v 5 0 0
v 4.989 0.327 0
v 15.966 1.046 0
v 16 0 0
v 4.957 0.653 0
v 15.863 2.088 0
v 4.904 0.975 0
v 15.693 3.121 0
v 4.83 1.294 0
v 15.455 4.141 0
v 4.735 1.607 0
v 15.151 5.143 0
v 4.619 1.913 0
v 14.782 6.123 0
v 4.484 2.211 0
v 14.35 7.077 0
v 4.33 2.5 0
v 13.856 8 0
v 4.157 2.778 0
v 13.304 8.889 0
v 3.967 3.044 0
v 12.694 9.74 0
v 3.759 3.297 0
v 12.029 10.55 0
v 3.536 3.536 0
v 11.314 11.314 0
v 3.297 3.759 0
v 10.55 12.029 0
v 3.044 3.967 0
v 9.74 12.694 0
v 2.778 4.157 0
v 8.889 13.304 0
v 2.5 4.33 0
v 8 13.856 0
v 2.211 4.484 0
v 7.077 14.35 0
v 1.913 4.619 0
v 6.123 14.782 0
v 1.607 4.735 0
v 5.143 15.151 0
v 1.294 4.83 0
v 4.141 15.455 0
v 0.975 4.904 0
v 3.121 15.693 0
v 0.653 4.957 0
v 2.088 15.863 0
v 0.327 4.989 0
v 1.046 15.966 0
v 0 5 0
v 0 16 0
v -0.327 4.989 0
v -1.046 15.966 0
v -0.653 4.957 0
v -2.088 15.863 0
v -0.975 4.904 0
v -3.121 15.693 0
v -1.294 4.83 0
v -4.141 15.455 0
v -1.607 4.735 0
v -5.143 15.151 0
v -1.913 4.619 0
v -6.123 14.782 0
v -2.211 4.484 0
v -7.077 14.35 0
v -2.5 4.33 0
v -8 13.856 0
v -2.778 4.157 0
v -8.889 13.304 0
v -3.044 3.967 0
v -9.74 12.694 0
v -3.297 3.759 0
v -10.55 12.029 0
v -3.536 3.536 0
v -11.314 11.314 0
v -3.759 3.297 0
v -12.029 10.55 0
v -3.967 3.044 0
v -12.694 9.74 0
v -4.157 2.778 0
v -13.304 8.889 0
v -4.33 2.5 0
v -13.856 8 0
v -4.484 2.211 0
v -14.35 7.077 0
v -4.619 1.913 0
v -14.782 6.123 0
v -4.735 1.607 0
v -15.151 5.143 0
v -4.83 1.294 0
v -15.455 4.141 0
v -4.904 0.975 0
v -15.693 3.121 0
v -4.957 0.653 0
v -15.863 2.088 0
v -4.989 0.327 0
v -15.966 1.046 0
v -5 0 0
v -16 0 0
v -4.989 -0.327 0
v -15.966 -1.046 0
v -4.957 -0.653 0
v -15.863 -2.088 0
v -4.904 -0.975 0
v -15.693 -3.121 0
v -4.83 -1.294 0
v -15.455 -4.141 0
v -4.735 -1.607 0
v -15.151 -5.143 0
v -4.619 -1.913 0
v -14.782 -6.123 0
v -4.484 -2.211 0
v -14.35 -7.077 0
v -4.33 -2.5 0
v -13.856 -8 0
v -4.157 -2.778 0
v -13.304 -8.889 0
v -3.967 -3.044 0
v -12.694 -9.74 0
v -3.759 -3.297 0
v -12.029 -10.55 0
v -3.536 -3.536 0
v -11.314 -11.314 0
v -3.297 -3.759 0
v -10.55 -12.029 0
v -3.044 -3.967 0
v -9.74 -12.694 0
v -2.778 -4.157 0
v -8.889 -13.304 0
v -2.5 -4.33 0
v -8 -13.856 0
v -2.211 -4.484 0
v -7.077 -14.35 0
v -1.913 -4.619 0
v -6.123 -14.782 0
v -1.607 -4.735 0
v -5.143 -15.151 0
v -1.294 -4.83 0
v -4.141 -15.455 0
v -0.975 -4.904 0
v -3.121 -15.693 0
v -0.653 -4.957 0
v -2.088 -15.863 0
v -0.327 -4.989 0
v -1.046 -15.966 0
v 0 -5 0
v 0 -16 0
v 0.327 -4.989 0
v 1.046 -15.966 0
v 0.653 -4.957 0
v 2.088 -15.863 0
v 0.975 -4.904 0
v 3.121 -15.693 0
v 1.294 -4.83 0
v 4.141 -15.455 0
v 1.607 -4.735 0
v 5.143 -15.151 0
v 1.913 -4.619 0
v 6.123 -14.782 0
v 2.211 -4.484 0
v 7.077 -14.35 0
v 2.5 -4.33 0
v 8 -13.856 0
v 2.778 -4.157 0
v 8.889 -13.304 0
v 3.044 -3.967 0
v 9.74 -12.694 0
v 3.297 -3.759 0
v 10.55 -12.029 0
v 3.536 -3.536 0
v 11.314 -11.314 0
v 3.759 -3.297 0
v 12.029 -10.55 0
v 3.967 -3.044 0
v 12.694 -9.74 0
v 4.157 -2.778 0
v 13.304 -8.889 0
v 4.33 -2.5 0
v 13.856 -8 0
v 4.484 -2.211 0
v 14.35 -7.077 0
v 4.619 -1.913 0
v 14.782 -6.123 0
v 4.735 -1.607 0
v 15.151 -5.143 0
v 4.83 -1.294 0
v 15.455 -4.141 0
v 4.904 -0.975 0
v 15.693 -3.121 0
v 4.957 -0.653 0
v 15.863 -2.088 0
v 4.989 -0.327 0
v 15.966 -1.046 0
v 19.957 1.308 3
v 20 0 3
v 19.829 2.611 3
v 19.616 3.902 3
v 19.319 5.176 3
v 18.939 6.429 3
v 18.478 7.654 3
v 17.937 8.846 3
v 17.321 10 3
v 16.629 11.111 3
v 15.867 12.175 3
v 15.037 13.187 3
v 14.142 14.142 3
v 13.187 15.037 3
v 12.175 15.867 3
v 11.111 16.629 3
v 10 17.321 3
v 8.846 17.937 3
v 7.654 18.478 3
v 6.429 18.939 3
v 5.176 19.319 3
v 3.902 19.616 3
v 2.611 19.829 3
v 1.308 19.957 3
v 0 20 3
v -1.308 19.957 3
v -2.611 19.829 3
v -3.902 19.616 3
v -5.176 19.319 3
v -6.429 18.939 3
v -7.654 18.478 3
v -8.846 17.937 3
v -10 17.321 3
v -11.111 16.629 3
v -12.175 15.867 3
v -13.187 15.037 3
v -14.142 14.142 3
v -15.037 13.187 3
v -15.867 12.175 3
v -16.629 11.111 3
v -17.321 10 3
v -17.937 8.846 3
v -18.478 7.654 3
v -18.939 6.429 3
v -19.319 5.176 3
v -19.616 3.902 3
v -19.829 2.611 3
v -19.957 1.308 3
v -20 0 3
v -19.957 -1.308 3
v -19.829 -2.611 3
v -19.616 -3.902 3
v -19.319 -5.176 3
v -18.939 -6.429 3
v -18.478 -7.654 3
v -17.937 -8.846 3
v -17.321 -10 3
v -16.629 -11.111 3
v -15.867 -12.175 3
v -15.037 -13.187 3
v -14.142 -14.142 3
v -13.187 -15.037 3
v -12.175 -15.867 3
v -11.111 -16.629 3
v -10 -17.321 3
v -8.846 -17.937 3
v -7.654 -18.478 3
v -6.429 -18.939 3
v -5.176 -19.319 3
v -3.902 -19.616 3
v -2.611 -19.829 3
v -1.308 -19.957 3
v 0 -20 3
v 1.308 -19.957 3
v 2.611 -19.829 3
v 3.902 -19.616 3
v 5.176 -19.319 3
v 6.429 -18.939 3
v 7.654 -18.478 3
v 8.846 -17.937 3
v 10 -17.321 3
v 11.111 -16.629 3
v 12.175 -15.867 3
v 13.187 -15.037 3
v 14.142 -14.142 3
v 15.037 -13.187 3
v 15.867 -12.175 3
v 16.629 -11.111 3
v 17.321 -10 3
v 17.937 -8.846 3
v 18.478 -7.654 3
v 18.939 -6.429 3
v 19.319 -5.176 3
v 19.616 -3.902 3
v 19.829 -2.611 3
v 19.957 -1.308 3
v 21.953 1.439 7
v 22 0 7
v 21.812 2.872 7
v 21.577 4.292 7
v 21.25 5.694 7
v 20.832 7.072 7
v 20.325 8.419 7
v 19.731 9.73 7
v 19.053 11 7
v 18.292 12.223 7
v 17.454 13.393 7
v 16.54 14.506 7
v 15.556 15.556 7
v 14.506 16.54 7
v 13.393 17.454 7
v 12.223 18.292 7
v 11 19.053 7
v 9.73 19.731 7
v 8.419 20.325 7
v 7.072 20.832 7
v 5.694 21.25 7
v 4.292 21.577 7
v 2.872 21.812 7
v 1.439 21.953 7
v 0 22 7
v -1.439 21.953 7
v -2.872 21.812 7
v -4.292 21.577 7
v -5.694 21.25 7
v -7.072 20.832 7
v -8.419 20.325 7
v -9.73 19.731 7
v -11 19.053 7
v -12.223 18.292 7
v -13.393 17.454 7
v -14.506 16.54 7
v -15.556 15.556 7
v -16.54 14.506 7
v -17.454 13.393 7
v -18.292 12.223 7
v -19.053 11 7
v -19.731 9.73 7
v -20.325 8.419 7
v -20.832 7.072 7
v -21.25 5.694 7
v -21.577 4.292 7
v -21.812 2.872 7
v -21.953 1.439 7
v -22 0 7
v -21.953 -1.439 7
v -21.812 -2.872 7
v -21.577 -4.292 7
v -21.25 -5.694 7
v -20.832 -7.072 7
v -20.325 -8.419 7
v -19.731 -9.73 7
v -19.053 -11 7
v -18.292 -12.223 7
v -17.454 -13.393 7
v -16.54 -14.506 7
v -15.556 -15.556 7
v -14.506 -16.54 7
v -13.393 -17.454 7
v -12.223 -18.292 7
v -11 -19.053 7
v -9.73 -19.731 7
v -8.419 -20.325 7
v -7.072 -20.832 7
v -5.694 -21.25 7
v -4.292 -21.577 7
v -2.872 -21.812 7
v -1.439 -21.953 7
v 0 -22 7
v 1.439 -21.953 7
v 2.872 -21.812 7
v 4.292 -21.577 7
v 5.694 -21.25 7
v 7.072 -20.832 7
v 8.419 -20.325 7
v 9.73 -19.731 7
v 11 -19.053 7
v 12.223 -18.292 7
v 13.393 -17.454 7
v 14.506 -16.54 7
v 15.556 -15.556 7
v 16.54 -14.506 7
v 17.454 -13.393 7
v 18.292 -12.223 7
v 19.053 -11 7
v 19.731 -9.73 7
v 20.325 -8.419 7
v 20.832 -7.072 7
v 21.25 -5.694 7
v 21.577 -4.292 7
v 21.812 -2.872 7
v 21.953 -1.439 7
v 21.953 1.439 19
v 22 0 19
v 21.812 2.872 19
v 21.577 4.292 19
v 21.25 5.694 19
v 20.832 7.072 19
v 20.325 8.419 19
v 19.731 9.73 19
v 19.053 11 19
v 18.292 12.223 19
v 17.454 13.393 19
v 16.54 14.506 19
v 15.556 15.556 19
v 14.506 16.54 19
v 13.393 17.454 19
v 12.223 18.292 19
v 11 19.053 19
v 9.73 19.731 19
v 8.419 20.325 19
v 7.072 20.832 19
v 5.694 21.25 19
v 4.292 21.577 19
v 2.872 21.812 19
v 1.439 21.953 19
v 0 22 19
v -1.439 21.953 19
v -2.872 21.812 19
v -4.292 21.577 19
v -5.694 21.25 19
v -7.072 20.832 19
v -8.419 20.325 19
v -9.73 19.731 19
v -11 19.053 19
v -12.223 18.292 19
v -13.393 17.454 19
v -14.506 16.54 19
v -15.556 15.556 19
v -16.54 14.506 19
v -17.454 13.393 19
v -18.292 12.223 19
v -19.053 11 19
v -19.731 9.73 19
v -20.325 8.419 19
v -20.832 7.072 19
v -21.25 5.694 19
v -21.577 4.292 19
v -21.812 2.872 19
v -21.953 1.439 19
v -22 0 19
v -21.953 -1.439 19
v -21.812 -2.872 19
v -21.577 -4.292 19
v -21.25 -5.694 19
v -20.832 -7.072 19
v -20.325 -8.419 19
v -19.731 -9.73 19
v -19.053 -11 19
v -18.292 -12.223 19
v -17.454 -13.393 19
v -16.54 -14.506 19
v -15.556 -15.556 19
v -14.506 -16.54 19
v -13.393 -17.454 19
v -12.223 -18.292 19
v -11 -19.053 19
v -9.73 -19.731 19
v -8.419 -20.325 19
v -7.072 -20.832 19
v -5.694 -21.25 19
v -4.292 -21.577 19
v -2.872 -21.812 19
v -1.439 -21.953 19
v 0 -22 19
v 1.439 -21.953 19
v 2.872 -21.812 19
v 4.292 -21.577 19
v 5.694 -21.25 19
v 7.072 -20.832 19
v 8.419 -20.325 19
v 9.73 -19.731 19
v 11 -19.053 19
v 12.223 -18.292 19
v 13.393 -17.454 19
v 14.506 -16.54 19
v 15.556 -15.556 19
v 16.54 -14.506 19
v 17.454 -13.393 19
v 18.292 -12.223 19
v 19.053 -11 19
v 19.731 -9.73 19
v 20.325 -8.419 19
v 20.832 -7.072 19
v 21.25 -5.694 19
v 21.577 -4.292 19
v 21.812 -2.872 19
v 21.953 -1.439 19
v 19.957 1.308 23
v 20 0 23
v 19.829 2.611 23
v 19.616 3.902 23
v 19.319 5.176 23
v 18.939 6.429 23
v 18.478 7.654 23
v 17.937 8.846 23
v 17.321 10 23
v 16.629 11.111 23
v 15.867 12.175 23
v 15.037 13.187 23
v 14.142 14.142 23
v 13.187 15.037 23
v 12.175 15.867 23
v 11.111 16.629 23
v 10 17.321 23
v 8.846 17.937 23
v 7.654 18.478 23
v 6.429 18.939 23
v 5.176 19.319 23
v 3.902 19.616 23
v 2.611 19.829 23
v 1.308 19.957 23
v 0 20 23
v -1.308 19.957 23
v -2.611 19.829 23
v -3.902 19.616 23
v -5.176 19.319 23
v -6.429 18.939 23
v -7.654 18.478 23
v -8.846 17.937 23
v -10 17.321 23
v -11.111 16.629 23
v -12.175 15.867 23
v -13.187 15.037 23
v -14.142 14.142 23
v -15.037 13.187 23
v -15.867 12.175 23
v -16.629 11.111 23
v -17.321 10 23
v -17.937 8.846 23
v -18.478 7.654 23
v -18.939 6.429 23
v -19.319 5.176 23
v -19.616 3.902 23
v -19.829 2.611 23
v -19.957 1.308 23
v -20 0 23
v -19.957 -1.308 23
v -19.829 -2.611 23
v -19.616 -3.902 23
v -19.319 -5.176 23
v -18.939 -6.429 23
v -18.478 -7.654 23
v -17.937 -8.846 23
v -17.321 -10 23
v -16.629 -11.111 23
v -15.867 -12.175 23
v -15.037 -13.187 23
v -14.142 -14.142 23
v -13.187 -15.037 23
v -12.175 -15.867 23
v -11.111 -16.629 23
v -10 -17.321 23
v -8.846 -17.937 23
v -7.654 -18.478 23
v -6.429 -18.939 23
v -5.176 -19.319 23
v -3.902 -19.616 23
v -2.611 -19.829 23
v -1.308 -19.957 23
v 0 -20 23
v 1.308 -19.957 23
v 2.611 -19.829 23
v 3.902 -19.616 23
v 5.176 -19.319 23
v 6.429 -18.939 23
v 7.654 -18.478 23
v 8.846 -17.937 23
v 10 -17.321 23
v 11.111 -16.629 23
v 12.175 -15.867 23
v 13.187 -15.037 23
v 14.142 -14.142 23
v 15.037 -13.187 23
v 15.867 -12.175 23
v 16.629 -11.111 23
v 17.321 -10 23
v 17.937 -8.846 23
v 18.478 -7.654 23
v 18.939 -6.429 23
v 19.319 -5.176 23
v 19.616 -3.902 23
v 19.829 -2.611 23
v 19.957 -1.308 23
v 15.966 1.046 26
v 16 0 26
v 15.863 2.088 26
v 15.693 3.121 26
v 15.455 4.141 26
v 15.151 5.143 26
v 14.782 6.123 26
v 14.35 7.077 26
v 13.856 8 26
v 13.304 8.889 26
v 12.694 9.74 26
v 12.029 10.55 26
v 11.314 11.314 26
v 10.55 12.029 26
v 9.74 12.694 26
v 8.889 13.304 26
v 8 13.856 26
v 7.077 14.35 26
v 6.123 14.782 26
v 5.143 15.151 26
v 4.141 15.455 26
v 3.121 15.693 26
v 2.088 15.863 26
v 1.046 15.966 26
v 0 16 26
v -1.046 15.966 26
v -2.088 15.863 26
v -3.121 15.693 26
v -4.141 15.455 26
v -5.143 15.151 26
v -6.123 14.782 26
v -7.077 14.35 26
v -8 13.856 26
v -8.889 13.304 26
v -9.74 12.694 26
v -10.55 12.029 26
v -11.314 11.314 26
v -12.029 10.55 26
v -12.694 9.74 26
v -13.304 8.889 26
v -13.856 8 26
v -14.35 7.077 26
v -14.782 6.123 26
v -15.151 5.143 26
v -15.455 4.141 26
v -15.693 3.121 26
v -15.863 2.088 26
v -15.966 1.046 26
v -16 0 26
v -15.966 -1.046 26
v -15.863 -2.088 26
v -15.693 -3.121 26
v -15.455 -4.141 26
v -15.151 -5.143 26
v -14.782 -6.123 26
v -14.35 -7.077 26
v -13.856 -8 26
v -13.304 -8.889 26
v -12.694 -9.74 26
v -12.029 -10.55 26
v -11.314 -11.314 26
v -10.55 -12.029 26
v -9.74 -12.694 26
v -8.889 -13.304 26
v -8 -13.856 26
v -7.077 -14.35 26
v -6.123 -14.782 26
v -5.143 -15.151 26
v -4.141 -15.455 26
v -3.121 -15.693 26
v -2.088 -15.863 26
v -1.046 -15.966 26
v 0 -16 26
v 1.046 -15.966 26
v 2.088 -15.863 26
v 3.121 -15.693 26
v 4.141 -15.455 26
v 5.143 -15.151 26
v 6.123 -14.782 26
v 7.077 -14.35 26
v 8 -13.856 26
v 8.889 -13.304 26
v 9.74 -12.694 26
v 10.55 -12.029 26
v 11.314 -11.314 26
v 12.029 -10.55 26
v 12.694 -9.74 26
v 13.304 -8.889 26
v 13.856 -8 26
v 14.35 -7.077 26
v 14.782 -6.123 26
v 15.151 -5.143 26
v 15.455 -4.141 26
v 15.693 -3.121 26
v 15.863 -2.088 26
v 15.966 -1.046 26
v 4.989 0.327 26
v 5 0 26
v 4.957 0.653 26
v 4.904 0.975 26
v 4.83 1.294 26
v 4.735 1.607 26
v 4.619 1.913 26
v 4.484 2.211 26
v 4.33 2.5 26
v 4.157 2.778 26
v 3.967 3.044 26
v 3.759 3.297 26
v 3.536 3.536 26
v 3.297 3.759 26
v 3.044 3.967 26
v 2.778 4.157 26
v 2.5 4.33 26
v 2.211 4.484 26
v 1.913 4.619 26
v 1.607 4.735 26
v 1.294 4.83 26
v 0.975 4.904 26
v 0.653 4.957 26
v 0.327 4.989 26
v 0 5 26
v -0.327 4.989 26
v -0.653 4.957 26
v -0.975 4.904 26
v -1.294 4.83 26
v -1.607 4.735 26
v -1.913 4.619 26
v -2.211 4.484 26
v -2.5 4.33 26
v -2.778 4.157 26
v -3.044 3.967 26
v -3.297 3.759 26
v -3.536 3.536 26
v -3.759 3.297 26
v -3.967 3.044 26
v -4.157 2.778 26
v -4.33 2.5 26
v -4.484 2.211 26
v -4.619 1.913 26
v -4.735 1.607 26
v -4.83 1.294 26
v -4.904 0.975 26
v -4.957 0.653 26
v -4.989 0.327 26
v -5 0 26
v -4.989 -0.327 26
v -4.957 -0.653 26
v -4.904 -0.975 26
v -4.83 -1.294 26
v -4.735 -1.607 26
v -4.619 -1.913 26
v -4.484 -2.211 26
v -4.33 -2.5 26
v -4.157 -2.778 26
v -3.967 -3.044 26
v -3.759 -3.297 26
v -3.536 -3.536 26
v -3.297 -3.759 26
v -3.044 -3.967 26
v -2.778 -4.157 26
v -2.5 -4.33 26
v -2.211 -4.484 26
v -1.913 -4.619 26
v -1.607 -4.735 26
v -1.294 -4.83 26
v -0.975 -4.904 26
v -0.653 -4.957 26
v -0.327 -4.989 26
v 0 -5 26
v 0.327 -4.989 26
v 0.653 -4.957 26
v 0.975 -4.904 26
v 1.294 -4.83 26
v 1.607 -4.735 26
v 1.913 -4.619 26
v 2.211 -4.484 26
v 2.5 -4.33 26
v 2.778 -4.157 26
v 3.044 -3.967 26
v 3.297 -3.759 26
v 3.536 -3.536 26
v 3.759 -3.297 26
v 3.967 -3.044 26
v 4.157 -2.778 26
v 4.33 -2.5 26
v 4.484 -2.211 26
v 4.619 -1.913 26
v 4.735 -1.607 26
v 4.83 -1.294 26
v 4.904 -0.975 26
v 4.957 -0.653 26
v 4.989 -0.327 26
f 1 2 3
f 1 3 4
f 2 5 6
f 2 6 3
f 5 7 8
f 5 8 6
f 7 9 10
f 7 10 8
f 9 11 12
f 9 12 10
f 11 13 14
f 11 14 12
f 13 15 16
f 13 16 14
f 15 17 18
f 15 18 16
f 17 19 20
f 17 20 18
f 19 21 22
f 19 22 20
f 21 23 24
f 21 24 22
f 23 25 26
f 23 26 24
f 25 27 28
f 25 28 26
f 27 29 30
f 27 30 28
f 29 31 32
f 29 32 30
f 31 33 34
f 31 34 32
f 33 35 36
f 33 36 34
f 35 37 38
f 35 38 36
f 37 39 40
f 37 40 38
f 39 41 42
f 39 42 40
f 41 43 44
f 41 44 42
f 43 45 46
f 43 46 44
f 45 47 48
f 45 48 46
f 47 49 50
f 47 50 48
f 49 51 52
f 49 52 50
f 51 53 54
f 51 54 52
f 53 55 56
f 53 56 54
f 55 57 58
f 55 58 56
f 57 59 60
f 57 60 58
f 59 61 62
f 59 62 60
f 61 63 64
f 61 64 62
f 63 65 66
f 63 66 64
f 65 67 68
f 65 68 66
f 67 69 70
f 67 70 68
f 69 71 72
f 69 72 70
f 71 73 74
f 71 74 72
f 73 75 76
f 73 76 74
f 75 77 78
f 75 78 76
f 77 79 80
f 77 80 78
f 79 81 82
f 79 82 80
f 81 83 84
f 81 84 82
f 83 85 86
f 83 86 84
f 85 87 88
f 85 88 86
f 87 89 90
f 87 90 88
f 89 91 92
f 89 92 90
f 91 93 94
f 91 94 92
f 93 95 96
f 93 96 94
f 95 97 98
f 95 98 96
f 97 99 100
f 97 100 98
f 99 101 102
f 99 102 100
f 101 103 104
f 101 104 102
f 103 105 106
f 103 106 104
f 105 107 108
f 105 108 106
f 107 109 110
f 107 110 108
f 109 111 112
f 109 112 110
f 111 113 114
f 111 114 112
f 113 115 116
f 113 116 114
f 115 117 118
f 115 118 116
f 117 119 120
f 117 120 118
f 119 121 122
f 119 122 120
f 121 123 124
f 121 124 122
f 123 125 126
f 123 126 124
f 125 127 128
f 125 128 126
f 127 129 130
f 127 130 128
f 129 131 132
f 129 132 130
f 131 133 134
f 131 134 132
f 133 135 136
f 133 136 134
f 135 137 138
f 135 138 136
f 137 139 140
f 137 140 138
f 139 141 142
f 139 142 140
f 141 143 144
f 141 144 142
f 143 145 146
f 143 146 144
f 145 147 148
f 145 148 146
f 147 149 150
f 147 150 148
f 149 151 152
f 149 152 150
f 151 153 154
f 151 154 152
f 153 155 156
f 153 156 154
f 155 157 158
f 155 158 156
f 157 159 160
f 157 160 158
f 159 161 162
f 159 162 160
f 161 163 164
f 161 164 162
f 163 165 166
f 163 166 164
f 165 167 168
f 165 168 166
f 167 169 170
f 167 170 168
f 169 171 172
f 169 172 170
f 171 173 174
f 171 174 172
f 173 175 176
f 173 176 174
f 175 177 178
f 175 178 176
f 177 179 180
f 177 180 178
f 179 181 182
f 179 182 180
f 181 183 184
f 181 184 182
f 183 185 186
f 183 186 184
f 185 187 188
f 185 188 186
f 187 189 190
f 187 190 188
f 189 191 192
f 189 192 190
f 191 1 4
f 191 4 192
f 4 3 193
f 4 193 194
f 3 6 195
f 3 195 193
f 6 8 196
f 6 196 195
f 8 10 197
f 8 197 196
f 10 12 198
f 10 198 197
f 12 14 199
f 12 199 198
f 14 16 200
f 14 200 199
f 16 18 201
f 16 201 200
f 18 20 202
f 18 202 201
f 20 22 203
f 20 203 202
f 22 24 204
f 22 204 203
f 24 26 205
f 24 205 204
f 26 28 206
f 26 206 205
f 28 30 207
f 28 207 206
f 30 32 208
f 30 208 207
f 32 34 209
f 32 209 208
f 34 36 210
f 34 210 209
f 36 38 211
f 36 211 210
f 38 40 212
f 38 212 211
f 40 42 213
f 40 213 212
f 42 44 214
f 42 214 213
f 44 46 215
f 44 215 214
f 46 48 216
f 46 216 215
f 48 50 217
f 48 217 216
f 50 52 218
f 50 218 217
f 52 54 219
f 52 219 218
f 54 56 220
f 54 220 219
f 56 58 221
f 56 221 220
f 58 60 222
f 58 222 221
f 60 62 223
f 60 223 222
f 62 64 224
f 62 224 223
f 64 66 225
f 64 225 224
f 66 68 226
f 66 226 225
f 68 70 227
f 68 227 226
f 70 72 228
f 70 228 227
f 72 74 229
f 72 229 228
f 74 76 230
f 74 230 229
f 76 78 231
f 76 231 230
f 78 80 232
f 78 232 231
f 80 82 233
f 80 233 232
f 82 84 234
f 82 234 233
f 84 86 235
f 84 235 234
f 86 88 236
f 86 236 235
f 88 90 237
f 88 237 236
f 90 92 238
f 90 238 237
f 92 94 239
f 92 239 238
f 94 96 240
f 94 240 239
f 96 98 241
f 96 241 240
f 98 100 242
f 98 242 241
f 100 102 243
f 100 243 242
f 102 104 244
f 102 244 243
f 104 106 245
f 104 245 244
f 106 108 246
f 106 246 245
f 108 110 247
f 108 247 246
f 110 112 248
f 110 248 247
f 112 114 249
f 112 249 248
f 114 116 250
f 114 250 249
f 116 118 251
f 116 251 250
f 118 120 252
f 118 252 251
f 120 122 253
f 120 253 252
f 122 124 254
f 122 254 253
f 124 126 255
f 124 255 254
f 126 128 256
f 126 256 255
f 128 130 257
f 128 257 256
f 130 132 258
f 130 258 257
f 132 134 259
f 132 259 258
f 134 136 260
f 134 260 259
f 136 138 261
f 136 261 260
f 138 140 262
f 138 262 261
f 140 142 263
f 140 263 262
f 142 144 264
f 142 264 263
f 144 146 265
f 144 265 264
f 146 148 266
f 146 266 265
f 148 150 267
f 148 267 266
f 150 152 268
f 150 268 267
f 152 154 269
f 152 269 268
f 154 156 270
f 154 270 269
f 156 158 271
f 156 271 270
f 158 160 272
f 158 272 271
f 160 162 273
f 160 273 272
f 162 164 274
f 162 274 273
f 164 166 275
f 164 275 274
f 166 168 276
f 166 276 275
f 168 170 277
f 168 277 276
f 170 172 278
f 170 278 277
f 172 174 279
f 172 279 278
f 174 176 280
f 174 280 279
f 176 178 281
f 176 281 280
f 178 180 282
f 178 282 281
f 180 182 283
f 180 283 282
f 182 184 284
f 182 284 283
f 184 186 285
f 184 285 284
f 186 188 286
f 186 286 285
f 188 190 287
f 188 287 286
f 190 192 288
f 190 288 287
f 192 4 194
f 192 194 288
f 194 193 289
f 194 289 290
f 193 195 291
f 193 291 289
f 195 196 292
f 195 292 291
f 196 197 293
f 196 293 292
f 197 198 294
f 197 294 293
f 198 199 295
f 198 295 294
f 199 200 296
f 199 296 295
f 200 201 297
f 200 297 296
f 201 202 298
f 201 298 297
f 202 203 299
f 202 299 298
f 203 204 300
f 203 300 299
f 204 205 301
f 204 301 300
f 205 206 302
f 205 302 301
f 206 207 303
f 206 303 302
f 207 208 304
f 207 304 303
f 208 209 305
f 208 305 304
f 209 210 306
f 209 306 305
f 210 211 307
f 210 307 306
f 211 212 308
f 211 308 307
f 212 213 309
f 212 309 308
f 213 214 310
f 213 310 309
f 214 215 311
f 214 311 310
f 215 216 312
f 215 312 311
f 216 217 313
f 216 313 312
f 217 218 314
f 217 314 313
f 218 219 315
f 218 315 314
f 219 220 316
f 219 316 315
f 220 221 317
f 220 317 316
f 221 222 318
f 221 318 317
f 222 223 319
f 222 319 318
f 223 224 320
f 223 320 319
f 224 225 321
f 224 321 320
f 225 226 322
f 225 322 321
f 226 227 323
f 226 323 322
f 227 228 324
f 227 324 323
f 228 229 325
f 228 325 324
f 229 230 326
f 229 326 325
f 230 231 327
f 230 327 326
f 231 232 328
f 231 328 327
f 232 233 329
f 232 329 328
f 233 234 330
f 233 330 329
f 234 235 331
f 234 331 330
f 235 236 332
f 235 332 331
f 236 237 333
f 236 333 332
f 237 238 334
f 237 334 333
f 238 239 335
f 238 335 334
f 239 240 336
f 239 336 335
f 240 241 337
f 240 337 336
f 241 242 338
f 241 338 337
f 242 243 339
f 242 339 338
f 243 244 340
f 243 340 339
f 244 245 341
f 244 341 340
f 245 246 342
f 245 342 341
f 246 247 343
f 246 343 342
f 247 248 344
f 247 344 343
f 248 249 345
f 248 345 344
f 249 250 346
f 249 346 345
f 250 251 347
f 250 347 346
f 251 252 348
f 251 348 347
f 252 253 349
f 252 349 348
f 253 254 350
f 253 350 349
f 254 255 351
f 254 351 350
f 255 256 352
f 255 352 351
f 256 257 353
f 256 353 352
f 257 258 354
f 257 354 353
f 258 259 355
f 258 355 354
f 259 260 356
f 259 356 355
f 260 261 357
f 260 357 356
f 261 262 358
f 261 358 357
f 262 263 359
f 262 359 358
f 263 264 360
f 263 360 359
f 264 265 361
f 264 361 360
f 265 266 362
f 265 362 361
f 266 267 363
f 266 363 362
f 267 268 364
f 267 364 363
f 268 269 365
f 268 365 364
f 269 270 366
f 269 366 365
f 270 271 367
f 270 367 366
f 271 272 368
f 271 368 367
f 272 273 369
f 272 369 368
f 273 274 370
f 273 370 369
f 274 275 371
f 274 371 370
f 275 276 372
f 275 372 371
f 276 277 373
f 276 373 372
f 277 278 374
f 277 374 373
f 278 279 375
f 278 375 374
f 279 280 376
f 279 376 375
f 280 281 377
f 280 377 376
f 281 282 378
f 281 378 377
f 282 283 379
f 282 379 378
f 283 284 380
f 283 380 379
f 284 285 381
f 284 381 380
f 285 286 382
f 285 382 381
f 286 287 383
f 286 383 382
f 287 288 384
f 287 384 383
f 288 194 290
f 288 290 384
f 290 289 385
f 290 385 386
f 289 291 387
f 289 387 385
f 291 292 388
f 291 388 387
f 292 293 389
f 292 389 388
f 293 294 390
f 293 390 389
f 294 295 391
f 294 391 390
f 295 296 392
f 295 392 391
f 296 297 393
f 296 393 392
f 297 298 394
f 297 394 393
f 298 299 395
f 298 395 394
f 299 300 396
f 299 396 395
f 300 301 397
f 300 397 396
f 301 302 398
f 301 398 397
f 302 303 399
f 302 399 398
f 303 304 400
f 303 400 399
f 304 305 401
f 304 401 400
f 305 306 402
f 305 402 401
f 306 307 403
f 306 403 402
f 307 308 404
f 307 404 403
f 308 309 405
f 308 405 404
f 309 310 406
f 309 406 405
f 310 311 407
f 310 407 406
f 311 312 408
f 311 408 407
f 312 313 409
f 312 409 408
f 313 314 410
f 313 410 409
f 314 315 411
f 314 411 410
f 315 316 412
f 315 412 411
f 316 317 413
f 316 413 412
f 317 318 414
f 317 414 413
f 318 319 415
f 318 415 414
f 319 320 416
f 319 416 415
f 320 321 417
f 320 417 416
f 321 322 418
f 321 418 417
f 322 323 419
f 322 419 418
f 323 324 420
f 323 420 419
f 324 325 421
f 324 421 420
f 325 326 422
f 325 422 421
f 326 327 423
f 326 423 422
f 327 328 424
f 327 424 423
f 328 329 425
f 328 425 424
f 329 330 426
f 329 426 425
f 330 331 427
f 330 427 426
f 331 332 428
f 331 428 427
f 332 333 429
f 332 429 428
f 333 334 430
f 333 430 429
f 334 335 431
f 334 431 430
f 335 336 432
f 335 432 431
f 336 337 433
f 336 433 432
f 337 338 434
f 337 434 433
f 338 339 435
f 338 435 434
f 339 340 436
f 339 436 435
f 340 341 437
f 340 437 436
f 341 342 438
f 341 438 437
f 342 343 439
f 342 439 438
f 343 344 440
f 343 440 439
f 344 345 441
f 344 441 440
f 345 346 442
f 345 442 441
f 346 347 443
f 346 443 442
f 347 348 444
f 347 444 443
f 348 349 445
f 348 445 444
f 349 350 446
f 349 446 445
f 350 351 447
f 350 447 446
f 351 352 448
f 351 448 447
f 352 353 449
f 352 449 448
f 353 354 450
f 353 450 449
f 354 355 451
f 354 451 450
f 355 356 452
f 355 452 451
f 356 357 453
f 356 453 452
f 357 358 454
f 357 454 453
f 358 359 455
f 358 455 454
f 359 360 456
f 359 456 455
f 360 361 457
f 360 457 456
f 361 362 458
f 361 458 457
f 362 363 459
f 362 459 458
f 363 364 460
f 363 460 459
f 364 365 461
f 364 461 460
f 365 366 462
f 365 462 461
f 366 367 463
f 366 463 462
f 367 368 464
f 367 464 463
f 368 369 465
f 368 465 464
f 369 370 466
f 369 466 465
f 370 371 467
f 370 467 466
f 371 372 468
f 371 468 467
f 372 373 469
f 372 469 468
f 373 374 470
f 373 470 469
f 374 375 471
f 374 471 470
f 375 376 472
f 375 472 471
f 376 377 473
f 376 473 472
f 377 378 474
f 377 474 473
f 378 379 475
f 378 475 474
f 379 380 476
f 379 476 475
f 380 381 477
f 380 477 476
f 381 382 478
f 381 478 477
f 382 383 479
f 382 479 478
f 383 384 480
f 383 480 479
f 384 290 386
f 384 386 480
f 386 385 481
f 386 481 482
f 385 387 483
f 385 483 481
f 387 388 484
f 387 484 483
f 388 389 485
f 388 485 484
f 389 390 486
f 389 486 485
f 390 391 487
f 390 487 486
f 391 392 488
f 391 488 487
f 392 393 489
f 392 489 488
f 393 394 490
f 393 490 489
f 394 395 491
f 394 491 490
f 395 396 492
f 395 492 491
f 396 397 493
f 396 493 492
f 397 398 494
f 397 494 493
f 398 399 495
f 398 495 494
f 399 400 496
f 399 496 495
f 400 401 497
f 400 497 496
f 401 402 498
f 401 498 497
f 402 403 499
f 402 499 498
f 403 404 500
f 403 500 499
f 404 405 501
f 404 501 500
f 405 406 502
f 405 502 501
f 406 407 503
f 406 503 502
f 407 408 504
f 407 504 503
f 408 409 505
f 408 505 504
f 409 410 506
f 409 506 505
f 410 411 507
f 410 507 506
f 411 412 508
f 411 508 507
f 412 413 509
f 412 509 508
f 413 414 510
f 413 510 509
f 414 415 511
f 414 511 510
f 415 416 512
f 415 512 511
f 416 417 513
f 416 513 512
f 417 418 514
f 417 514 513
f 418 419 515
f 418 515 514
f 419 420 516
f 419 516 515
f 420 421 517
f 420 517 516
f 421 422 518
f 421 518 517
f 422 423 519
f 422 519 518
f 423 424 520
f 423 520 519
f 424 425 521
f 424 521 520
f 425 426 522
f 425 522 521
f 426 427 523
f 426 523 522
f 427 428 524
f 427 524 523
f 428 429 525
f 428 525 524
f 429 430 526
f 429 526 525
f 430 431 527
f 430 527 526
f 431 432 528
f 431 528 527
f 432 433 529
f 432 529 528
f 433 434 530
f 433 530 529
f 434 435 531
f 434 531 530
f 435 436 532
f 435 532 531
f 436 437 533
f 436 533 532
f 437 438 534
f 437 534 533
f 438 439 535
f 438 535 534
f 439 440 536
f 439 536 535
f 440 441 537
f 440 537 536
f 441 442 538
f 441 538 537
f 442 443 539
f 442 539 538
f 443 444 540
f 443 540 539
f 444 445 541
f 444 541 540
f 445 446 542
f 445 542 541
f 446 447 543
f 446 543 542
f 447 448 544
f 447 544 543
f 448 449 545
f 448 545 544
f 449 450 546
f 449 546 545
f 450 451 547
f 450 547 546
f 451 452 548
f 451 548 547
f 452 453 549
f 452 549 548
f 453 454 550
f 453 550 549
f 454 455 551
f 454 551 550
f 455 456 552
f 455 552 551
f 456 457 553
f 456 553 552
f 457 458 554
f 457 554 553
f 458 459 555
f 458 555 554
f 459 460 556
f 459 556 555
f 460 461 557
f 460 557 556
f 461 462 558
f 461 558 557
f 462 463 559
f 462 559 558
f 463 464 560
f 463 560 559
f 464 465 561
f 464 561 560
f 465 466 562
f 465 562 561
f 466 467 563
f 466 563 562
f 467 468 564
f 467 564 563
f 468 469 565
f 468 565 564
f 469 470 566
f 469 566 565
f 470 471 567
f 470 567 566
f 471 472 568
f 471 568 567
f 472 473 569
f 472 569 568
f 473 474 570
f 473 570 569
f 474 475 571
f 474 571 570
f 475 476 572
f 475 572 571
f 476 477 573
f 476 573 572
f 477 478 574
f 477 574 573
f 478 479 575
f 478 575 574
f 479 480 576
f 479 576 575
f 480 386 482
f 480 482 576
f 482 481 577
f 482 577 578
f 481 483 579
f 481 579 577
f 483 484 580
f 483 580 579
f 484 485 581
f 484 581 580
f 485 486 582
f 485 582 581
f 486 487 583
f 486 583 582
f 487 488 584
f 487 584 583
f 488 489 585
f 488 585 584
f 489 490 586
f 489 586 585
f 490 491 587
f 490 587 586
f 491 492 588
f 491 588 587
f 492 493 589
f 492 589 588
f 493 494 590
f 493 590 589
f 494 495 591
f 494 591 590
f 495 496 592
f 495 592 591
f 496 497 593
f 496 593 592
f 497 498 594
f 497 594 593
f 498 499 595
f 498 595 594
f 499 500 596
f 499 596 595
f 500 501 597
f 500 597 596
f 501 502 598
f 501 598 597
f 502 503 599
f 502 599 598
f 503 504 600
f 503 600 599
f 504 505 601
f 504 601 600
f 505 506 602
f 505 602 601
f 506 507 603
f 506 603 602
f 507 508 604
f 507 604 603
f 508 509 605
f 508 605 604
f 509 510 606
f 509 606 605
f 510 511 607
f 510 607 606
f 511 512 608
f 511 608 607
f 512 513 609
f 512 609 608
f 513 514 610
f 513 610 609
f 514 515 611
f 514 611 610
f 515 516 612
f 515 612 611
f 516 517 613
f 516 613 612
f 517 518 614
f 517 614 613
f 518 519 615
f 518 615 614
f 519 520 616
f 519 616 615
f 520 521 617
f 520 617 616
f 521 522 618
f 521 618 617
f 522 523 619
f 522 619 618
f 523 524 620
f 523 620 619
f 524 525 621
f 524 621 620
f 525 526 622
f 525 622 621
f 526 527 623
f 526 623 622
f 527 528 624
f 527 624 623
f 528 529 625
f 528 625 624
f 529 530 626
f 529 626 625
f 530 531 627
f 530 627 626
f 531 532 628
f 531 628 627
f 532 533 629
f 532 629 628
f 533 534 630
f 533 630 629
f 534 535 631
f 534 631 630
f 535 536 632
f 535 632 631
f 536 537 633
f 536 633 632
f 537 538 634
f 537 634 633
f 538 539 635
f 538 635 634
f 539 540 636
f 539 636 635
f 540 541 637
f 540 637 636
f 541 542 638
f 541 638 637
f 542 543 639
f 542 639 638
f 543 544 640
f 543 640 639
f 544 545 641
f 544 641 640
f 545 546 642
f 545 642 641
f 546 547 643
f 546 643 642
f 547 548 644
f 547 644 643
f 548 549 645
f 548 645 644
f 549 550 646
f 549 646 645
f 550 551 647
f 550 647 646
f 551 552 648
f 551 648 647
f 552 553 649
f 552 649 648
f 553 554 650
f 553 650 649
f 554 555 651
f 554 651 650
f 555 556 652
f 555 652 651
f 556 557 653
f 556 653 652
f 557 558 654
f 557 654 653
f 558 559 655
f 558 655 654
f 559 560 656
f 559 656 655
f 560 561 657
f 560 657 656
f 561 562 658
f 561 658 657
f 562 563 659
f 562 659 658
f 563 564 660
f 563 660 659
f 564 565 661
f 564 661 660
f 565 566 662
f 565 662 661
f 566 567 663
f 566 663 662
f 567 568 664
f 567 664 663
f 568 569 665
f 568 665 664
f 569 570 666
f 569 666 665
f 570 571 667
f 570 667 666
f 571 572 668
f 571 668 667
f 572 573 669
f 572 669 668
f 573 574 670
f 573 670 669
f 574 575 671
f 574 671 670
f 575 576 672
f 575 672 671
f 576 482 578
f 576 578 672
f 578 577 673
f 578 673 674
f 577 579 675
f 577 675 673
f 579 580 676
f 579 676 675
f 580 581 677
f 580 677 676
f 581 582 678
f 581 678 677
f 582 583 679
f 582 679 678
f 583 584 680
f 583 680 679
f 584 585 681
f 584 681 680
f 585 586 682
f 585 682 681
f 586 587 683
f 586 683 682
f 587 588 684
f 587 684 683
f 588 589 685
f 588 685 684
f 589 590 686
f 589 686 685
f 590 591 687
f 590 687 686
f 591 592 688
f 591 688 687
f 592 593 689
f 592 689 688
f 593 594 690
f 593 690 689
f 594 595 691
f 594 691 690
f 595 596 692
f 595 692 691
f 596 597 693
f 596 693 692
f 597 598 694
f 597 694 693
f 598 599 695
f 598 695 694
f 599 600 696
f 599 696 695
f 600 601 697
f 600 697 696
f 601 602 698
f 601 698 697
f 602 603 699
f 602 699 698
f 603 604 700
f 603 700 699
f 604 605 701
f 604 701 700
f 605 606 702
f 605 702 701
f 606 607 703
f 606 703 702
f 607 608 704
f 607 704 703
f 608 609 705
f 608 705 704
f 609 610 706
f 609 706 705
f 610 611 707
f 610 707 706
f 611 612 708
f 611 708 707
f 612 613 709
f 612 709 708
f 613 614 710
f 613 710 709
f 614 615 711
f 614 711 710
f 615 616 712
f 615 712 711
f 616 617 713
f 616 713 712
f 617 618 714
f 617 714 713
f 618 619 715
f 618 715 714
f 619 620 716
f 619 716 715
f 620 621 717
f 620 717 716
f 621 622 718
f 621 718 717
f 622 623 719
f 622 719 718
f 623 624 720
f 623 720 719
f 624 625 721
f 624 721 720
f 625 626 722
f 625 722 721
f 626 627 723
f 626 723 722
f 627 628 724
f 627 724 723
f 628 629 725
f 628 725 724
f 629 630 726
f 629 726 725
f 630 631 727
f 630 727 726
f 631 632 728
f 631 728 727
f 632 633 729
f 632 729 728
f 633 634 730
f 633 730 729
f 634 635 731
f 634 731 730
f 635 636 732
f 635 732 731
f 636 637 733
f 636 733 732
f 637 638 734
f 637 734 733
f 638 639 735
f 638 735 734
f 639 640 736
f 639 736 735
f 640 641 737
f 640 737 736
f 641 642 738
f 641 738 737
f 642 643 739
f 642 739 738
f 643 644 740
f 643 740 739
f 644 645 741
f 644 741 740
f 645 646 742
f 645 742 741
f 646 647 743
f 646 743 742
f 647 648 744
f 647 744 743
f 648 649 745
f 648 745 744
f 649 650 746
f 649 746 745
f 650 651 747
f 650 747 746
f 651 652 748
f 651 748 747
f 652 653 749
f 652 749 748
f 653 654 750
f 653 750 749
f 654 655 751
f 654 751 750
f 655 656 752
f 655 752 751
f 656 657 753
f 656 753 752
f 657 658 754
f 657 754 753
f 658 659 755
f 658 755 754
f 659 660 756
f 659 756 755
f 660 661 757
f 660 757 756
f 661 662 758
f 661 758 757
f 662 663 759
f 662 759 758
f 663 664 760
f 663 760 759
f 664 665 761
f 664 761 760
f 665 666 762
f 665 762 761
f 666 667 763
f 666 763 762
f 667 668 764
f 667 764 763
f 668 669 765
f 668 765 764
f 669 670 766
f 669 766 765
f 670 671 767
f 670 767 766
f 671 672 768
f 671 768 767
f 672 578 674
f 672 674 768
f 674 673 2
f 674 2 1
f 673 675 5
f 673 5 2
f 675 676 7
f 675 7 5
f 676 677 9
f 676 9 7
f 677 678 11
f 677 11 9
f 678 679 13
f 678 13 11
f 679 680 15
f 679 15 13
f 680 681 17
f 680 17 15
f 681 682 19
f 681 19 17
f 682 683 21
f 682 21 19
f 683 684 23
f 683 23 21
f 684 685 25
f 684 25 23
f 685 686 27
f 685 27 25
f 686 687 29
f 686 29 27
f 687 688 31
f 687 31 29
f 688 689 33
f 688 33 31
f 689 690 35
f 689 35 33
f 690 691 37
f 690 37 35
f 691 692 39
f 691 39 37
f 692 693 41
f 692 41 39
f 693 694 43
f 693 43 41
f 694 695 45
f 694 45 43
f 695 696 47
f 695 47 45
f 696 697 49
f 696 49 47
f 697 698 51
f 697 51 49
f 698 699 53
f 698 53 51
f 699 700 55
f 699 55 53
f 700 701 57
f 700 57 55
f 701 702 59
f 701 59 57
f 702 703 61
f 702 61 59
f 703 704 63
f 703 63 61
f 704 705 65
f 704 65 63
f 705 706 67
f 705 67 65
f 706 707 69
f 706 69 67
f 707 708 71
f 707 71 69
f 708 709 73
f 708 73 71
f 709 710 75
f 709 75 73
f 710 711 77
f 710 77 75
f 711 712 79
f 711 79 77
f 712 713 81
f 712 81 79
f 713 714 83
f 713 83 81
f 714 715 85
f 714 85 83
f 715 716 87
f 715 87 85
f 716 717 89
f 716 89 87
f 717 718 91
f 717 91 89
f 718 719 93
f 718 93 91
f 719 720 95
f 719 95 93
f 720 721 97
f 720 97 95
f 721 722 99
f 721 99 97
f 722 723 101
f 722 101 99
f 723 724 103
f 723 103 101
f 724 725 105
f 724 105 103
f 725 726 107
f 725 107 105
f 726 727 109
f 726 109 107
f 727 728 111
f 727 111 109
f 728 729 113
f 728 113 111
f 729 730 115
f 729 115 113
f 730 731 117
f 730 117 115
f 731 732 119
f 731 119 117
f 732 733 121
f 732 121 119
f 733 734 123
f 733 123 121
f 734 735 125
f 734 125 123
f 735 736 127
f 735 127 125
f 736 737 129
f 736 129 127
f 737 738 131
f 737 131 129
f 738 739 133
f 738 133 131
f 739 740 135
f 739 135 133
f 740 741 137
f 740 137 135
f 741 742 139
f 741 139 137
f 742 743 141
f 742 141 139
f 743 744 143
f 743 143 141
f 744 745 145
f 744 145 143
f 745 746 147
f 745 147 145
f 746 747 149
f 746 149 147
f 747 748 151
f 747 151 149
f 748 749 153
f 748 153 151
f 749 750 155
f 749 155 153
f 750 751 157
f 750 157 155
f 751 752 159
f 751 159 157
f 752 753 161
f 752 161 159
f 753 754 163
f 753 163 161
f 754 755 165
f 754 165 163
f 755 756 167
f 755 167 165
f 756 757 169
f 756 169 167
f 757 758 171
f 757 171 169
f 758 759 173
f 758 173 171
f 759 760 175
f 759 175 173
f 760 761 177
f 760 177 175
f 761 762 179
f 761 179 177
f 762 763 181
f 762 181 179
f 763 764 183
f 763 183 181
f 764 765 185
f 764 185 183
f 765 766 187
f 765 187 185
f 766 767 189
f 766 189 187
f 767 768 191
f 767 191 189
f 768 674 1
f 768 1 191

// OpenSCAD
// Original MechIntel educational model. CC0-1.0. Units: mm.
// Not a standardized or load-rated component.
$fn=96;
// Section points: [radius, height], mm. Edit to change the profile.
section=[[5, 0], [16, 0], [20, 3], [22, 7], [22, 19], [20, 23], [16, 26], [5, 26]];
rotate_extrude($fn=96) polygon(points=section);
